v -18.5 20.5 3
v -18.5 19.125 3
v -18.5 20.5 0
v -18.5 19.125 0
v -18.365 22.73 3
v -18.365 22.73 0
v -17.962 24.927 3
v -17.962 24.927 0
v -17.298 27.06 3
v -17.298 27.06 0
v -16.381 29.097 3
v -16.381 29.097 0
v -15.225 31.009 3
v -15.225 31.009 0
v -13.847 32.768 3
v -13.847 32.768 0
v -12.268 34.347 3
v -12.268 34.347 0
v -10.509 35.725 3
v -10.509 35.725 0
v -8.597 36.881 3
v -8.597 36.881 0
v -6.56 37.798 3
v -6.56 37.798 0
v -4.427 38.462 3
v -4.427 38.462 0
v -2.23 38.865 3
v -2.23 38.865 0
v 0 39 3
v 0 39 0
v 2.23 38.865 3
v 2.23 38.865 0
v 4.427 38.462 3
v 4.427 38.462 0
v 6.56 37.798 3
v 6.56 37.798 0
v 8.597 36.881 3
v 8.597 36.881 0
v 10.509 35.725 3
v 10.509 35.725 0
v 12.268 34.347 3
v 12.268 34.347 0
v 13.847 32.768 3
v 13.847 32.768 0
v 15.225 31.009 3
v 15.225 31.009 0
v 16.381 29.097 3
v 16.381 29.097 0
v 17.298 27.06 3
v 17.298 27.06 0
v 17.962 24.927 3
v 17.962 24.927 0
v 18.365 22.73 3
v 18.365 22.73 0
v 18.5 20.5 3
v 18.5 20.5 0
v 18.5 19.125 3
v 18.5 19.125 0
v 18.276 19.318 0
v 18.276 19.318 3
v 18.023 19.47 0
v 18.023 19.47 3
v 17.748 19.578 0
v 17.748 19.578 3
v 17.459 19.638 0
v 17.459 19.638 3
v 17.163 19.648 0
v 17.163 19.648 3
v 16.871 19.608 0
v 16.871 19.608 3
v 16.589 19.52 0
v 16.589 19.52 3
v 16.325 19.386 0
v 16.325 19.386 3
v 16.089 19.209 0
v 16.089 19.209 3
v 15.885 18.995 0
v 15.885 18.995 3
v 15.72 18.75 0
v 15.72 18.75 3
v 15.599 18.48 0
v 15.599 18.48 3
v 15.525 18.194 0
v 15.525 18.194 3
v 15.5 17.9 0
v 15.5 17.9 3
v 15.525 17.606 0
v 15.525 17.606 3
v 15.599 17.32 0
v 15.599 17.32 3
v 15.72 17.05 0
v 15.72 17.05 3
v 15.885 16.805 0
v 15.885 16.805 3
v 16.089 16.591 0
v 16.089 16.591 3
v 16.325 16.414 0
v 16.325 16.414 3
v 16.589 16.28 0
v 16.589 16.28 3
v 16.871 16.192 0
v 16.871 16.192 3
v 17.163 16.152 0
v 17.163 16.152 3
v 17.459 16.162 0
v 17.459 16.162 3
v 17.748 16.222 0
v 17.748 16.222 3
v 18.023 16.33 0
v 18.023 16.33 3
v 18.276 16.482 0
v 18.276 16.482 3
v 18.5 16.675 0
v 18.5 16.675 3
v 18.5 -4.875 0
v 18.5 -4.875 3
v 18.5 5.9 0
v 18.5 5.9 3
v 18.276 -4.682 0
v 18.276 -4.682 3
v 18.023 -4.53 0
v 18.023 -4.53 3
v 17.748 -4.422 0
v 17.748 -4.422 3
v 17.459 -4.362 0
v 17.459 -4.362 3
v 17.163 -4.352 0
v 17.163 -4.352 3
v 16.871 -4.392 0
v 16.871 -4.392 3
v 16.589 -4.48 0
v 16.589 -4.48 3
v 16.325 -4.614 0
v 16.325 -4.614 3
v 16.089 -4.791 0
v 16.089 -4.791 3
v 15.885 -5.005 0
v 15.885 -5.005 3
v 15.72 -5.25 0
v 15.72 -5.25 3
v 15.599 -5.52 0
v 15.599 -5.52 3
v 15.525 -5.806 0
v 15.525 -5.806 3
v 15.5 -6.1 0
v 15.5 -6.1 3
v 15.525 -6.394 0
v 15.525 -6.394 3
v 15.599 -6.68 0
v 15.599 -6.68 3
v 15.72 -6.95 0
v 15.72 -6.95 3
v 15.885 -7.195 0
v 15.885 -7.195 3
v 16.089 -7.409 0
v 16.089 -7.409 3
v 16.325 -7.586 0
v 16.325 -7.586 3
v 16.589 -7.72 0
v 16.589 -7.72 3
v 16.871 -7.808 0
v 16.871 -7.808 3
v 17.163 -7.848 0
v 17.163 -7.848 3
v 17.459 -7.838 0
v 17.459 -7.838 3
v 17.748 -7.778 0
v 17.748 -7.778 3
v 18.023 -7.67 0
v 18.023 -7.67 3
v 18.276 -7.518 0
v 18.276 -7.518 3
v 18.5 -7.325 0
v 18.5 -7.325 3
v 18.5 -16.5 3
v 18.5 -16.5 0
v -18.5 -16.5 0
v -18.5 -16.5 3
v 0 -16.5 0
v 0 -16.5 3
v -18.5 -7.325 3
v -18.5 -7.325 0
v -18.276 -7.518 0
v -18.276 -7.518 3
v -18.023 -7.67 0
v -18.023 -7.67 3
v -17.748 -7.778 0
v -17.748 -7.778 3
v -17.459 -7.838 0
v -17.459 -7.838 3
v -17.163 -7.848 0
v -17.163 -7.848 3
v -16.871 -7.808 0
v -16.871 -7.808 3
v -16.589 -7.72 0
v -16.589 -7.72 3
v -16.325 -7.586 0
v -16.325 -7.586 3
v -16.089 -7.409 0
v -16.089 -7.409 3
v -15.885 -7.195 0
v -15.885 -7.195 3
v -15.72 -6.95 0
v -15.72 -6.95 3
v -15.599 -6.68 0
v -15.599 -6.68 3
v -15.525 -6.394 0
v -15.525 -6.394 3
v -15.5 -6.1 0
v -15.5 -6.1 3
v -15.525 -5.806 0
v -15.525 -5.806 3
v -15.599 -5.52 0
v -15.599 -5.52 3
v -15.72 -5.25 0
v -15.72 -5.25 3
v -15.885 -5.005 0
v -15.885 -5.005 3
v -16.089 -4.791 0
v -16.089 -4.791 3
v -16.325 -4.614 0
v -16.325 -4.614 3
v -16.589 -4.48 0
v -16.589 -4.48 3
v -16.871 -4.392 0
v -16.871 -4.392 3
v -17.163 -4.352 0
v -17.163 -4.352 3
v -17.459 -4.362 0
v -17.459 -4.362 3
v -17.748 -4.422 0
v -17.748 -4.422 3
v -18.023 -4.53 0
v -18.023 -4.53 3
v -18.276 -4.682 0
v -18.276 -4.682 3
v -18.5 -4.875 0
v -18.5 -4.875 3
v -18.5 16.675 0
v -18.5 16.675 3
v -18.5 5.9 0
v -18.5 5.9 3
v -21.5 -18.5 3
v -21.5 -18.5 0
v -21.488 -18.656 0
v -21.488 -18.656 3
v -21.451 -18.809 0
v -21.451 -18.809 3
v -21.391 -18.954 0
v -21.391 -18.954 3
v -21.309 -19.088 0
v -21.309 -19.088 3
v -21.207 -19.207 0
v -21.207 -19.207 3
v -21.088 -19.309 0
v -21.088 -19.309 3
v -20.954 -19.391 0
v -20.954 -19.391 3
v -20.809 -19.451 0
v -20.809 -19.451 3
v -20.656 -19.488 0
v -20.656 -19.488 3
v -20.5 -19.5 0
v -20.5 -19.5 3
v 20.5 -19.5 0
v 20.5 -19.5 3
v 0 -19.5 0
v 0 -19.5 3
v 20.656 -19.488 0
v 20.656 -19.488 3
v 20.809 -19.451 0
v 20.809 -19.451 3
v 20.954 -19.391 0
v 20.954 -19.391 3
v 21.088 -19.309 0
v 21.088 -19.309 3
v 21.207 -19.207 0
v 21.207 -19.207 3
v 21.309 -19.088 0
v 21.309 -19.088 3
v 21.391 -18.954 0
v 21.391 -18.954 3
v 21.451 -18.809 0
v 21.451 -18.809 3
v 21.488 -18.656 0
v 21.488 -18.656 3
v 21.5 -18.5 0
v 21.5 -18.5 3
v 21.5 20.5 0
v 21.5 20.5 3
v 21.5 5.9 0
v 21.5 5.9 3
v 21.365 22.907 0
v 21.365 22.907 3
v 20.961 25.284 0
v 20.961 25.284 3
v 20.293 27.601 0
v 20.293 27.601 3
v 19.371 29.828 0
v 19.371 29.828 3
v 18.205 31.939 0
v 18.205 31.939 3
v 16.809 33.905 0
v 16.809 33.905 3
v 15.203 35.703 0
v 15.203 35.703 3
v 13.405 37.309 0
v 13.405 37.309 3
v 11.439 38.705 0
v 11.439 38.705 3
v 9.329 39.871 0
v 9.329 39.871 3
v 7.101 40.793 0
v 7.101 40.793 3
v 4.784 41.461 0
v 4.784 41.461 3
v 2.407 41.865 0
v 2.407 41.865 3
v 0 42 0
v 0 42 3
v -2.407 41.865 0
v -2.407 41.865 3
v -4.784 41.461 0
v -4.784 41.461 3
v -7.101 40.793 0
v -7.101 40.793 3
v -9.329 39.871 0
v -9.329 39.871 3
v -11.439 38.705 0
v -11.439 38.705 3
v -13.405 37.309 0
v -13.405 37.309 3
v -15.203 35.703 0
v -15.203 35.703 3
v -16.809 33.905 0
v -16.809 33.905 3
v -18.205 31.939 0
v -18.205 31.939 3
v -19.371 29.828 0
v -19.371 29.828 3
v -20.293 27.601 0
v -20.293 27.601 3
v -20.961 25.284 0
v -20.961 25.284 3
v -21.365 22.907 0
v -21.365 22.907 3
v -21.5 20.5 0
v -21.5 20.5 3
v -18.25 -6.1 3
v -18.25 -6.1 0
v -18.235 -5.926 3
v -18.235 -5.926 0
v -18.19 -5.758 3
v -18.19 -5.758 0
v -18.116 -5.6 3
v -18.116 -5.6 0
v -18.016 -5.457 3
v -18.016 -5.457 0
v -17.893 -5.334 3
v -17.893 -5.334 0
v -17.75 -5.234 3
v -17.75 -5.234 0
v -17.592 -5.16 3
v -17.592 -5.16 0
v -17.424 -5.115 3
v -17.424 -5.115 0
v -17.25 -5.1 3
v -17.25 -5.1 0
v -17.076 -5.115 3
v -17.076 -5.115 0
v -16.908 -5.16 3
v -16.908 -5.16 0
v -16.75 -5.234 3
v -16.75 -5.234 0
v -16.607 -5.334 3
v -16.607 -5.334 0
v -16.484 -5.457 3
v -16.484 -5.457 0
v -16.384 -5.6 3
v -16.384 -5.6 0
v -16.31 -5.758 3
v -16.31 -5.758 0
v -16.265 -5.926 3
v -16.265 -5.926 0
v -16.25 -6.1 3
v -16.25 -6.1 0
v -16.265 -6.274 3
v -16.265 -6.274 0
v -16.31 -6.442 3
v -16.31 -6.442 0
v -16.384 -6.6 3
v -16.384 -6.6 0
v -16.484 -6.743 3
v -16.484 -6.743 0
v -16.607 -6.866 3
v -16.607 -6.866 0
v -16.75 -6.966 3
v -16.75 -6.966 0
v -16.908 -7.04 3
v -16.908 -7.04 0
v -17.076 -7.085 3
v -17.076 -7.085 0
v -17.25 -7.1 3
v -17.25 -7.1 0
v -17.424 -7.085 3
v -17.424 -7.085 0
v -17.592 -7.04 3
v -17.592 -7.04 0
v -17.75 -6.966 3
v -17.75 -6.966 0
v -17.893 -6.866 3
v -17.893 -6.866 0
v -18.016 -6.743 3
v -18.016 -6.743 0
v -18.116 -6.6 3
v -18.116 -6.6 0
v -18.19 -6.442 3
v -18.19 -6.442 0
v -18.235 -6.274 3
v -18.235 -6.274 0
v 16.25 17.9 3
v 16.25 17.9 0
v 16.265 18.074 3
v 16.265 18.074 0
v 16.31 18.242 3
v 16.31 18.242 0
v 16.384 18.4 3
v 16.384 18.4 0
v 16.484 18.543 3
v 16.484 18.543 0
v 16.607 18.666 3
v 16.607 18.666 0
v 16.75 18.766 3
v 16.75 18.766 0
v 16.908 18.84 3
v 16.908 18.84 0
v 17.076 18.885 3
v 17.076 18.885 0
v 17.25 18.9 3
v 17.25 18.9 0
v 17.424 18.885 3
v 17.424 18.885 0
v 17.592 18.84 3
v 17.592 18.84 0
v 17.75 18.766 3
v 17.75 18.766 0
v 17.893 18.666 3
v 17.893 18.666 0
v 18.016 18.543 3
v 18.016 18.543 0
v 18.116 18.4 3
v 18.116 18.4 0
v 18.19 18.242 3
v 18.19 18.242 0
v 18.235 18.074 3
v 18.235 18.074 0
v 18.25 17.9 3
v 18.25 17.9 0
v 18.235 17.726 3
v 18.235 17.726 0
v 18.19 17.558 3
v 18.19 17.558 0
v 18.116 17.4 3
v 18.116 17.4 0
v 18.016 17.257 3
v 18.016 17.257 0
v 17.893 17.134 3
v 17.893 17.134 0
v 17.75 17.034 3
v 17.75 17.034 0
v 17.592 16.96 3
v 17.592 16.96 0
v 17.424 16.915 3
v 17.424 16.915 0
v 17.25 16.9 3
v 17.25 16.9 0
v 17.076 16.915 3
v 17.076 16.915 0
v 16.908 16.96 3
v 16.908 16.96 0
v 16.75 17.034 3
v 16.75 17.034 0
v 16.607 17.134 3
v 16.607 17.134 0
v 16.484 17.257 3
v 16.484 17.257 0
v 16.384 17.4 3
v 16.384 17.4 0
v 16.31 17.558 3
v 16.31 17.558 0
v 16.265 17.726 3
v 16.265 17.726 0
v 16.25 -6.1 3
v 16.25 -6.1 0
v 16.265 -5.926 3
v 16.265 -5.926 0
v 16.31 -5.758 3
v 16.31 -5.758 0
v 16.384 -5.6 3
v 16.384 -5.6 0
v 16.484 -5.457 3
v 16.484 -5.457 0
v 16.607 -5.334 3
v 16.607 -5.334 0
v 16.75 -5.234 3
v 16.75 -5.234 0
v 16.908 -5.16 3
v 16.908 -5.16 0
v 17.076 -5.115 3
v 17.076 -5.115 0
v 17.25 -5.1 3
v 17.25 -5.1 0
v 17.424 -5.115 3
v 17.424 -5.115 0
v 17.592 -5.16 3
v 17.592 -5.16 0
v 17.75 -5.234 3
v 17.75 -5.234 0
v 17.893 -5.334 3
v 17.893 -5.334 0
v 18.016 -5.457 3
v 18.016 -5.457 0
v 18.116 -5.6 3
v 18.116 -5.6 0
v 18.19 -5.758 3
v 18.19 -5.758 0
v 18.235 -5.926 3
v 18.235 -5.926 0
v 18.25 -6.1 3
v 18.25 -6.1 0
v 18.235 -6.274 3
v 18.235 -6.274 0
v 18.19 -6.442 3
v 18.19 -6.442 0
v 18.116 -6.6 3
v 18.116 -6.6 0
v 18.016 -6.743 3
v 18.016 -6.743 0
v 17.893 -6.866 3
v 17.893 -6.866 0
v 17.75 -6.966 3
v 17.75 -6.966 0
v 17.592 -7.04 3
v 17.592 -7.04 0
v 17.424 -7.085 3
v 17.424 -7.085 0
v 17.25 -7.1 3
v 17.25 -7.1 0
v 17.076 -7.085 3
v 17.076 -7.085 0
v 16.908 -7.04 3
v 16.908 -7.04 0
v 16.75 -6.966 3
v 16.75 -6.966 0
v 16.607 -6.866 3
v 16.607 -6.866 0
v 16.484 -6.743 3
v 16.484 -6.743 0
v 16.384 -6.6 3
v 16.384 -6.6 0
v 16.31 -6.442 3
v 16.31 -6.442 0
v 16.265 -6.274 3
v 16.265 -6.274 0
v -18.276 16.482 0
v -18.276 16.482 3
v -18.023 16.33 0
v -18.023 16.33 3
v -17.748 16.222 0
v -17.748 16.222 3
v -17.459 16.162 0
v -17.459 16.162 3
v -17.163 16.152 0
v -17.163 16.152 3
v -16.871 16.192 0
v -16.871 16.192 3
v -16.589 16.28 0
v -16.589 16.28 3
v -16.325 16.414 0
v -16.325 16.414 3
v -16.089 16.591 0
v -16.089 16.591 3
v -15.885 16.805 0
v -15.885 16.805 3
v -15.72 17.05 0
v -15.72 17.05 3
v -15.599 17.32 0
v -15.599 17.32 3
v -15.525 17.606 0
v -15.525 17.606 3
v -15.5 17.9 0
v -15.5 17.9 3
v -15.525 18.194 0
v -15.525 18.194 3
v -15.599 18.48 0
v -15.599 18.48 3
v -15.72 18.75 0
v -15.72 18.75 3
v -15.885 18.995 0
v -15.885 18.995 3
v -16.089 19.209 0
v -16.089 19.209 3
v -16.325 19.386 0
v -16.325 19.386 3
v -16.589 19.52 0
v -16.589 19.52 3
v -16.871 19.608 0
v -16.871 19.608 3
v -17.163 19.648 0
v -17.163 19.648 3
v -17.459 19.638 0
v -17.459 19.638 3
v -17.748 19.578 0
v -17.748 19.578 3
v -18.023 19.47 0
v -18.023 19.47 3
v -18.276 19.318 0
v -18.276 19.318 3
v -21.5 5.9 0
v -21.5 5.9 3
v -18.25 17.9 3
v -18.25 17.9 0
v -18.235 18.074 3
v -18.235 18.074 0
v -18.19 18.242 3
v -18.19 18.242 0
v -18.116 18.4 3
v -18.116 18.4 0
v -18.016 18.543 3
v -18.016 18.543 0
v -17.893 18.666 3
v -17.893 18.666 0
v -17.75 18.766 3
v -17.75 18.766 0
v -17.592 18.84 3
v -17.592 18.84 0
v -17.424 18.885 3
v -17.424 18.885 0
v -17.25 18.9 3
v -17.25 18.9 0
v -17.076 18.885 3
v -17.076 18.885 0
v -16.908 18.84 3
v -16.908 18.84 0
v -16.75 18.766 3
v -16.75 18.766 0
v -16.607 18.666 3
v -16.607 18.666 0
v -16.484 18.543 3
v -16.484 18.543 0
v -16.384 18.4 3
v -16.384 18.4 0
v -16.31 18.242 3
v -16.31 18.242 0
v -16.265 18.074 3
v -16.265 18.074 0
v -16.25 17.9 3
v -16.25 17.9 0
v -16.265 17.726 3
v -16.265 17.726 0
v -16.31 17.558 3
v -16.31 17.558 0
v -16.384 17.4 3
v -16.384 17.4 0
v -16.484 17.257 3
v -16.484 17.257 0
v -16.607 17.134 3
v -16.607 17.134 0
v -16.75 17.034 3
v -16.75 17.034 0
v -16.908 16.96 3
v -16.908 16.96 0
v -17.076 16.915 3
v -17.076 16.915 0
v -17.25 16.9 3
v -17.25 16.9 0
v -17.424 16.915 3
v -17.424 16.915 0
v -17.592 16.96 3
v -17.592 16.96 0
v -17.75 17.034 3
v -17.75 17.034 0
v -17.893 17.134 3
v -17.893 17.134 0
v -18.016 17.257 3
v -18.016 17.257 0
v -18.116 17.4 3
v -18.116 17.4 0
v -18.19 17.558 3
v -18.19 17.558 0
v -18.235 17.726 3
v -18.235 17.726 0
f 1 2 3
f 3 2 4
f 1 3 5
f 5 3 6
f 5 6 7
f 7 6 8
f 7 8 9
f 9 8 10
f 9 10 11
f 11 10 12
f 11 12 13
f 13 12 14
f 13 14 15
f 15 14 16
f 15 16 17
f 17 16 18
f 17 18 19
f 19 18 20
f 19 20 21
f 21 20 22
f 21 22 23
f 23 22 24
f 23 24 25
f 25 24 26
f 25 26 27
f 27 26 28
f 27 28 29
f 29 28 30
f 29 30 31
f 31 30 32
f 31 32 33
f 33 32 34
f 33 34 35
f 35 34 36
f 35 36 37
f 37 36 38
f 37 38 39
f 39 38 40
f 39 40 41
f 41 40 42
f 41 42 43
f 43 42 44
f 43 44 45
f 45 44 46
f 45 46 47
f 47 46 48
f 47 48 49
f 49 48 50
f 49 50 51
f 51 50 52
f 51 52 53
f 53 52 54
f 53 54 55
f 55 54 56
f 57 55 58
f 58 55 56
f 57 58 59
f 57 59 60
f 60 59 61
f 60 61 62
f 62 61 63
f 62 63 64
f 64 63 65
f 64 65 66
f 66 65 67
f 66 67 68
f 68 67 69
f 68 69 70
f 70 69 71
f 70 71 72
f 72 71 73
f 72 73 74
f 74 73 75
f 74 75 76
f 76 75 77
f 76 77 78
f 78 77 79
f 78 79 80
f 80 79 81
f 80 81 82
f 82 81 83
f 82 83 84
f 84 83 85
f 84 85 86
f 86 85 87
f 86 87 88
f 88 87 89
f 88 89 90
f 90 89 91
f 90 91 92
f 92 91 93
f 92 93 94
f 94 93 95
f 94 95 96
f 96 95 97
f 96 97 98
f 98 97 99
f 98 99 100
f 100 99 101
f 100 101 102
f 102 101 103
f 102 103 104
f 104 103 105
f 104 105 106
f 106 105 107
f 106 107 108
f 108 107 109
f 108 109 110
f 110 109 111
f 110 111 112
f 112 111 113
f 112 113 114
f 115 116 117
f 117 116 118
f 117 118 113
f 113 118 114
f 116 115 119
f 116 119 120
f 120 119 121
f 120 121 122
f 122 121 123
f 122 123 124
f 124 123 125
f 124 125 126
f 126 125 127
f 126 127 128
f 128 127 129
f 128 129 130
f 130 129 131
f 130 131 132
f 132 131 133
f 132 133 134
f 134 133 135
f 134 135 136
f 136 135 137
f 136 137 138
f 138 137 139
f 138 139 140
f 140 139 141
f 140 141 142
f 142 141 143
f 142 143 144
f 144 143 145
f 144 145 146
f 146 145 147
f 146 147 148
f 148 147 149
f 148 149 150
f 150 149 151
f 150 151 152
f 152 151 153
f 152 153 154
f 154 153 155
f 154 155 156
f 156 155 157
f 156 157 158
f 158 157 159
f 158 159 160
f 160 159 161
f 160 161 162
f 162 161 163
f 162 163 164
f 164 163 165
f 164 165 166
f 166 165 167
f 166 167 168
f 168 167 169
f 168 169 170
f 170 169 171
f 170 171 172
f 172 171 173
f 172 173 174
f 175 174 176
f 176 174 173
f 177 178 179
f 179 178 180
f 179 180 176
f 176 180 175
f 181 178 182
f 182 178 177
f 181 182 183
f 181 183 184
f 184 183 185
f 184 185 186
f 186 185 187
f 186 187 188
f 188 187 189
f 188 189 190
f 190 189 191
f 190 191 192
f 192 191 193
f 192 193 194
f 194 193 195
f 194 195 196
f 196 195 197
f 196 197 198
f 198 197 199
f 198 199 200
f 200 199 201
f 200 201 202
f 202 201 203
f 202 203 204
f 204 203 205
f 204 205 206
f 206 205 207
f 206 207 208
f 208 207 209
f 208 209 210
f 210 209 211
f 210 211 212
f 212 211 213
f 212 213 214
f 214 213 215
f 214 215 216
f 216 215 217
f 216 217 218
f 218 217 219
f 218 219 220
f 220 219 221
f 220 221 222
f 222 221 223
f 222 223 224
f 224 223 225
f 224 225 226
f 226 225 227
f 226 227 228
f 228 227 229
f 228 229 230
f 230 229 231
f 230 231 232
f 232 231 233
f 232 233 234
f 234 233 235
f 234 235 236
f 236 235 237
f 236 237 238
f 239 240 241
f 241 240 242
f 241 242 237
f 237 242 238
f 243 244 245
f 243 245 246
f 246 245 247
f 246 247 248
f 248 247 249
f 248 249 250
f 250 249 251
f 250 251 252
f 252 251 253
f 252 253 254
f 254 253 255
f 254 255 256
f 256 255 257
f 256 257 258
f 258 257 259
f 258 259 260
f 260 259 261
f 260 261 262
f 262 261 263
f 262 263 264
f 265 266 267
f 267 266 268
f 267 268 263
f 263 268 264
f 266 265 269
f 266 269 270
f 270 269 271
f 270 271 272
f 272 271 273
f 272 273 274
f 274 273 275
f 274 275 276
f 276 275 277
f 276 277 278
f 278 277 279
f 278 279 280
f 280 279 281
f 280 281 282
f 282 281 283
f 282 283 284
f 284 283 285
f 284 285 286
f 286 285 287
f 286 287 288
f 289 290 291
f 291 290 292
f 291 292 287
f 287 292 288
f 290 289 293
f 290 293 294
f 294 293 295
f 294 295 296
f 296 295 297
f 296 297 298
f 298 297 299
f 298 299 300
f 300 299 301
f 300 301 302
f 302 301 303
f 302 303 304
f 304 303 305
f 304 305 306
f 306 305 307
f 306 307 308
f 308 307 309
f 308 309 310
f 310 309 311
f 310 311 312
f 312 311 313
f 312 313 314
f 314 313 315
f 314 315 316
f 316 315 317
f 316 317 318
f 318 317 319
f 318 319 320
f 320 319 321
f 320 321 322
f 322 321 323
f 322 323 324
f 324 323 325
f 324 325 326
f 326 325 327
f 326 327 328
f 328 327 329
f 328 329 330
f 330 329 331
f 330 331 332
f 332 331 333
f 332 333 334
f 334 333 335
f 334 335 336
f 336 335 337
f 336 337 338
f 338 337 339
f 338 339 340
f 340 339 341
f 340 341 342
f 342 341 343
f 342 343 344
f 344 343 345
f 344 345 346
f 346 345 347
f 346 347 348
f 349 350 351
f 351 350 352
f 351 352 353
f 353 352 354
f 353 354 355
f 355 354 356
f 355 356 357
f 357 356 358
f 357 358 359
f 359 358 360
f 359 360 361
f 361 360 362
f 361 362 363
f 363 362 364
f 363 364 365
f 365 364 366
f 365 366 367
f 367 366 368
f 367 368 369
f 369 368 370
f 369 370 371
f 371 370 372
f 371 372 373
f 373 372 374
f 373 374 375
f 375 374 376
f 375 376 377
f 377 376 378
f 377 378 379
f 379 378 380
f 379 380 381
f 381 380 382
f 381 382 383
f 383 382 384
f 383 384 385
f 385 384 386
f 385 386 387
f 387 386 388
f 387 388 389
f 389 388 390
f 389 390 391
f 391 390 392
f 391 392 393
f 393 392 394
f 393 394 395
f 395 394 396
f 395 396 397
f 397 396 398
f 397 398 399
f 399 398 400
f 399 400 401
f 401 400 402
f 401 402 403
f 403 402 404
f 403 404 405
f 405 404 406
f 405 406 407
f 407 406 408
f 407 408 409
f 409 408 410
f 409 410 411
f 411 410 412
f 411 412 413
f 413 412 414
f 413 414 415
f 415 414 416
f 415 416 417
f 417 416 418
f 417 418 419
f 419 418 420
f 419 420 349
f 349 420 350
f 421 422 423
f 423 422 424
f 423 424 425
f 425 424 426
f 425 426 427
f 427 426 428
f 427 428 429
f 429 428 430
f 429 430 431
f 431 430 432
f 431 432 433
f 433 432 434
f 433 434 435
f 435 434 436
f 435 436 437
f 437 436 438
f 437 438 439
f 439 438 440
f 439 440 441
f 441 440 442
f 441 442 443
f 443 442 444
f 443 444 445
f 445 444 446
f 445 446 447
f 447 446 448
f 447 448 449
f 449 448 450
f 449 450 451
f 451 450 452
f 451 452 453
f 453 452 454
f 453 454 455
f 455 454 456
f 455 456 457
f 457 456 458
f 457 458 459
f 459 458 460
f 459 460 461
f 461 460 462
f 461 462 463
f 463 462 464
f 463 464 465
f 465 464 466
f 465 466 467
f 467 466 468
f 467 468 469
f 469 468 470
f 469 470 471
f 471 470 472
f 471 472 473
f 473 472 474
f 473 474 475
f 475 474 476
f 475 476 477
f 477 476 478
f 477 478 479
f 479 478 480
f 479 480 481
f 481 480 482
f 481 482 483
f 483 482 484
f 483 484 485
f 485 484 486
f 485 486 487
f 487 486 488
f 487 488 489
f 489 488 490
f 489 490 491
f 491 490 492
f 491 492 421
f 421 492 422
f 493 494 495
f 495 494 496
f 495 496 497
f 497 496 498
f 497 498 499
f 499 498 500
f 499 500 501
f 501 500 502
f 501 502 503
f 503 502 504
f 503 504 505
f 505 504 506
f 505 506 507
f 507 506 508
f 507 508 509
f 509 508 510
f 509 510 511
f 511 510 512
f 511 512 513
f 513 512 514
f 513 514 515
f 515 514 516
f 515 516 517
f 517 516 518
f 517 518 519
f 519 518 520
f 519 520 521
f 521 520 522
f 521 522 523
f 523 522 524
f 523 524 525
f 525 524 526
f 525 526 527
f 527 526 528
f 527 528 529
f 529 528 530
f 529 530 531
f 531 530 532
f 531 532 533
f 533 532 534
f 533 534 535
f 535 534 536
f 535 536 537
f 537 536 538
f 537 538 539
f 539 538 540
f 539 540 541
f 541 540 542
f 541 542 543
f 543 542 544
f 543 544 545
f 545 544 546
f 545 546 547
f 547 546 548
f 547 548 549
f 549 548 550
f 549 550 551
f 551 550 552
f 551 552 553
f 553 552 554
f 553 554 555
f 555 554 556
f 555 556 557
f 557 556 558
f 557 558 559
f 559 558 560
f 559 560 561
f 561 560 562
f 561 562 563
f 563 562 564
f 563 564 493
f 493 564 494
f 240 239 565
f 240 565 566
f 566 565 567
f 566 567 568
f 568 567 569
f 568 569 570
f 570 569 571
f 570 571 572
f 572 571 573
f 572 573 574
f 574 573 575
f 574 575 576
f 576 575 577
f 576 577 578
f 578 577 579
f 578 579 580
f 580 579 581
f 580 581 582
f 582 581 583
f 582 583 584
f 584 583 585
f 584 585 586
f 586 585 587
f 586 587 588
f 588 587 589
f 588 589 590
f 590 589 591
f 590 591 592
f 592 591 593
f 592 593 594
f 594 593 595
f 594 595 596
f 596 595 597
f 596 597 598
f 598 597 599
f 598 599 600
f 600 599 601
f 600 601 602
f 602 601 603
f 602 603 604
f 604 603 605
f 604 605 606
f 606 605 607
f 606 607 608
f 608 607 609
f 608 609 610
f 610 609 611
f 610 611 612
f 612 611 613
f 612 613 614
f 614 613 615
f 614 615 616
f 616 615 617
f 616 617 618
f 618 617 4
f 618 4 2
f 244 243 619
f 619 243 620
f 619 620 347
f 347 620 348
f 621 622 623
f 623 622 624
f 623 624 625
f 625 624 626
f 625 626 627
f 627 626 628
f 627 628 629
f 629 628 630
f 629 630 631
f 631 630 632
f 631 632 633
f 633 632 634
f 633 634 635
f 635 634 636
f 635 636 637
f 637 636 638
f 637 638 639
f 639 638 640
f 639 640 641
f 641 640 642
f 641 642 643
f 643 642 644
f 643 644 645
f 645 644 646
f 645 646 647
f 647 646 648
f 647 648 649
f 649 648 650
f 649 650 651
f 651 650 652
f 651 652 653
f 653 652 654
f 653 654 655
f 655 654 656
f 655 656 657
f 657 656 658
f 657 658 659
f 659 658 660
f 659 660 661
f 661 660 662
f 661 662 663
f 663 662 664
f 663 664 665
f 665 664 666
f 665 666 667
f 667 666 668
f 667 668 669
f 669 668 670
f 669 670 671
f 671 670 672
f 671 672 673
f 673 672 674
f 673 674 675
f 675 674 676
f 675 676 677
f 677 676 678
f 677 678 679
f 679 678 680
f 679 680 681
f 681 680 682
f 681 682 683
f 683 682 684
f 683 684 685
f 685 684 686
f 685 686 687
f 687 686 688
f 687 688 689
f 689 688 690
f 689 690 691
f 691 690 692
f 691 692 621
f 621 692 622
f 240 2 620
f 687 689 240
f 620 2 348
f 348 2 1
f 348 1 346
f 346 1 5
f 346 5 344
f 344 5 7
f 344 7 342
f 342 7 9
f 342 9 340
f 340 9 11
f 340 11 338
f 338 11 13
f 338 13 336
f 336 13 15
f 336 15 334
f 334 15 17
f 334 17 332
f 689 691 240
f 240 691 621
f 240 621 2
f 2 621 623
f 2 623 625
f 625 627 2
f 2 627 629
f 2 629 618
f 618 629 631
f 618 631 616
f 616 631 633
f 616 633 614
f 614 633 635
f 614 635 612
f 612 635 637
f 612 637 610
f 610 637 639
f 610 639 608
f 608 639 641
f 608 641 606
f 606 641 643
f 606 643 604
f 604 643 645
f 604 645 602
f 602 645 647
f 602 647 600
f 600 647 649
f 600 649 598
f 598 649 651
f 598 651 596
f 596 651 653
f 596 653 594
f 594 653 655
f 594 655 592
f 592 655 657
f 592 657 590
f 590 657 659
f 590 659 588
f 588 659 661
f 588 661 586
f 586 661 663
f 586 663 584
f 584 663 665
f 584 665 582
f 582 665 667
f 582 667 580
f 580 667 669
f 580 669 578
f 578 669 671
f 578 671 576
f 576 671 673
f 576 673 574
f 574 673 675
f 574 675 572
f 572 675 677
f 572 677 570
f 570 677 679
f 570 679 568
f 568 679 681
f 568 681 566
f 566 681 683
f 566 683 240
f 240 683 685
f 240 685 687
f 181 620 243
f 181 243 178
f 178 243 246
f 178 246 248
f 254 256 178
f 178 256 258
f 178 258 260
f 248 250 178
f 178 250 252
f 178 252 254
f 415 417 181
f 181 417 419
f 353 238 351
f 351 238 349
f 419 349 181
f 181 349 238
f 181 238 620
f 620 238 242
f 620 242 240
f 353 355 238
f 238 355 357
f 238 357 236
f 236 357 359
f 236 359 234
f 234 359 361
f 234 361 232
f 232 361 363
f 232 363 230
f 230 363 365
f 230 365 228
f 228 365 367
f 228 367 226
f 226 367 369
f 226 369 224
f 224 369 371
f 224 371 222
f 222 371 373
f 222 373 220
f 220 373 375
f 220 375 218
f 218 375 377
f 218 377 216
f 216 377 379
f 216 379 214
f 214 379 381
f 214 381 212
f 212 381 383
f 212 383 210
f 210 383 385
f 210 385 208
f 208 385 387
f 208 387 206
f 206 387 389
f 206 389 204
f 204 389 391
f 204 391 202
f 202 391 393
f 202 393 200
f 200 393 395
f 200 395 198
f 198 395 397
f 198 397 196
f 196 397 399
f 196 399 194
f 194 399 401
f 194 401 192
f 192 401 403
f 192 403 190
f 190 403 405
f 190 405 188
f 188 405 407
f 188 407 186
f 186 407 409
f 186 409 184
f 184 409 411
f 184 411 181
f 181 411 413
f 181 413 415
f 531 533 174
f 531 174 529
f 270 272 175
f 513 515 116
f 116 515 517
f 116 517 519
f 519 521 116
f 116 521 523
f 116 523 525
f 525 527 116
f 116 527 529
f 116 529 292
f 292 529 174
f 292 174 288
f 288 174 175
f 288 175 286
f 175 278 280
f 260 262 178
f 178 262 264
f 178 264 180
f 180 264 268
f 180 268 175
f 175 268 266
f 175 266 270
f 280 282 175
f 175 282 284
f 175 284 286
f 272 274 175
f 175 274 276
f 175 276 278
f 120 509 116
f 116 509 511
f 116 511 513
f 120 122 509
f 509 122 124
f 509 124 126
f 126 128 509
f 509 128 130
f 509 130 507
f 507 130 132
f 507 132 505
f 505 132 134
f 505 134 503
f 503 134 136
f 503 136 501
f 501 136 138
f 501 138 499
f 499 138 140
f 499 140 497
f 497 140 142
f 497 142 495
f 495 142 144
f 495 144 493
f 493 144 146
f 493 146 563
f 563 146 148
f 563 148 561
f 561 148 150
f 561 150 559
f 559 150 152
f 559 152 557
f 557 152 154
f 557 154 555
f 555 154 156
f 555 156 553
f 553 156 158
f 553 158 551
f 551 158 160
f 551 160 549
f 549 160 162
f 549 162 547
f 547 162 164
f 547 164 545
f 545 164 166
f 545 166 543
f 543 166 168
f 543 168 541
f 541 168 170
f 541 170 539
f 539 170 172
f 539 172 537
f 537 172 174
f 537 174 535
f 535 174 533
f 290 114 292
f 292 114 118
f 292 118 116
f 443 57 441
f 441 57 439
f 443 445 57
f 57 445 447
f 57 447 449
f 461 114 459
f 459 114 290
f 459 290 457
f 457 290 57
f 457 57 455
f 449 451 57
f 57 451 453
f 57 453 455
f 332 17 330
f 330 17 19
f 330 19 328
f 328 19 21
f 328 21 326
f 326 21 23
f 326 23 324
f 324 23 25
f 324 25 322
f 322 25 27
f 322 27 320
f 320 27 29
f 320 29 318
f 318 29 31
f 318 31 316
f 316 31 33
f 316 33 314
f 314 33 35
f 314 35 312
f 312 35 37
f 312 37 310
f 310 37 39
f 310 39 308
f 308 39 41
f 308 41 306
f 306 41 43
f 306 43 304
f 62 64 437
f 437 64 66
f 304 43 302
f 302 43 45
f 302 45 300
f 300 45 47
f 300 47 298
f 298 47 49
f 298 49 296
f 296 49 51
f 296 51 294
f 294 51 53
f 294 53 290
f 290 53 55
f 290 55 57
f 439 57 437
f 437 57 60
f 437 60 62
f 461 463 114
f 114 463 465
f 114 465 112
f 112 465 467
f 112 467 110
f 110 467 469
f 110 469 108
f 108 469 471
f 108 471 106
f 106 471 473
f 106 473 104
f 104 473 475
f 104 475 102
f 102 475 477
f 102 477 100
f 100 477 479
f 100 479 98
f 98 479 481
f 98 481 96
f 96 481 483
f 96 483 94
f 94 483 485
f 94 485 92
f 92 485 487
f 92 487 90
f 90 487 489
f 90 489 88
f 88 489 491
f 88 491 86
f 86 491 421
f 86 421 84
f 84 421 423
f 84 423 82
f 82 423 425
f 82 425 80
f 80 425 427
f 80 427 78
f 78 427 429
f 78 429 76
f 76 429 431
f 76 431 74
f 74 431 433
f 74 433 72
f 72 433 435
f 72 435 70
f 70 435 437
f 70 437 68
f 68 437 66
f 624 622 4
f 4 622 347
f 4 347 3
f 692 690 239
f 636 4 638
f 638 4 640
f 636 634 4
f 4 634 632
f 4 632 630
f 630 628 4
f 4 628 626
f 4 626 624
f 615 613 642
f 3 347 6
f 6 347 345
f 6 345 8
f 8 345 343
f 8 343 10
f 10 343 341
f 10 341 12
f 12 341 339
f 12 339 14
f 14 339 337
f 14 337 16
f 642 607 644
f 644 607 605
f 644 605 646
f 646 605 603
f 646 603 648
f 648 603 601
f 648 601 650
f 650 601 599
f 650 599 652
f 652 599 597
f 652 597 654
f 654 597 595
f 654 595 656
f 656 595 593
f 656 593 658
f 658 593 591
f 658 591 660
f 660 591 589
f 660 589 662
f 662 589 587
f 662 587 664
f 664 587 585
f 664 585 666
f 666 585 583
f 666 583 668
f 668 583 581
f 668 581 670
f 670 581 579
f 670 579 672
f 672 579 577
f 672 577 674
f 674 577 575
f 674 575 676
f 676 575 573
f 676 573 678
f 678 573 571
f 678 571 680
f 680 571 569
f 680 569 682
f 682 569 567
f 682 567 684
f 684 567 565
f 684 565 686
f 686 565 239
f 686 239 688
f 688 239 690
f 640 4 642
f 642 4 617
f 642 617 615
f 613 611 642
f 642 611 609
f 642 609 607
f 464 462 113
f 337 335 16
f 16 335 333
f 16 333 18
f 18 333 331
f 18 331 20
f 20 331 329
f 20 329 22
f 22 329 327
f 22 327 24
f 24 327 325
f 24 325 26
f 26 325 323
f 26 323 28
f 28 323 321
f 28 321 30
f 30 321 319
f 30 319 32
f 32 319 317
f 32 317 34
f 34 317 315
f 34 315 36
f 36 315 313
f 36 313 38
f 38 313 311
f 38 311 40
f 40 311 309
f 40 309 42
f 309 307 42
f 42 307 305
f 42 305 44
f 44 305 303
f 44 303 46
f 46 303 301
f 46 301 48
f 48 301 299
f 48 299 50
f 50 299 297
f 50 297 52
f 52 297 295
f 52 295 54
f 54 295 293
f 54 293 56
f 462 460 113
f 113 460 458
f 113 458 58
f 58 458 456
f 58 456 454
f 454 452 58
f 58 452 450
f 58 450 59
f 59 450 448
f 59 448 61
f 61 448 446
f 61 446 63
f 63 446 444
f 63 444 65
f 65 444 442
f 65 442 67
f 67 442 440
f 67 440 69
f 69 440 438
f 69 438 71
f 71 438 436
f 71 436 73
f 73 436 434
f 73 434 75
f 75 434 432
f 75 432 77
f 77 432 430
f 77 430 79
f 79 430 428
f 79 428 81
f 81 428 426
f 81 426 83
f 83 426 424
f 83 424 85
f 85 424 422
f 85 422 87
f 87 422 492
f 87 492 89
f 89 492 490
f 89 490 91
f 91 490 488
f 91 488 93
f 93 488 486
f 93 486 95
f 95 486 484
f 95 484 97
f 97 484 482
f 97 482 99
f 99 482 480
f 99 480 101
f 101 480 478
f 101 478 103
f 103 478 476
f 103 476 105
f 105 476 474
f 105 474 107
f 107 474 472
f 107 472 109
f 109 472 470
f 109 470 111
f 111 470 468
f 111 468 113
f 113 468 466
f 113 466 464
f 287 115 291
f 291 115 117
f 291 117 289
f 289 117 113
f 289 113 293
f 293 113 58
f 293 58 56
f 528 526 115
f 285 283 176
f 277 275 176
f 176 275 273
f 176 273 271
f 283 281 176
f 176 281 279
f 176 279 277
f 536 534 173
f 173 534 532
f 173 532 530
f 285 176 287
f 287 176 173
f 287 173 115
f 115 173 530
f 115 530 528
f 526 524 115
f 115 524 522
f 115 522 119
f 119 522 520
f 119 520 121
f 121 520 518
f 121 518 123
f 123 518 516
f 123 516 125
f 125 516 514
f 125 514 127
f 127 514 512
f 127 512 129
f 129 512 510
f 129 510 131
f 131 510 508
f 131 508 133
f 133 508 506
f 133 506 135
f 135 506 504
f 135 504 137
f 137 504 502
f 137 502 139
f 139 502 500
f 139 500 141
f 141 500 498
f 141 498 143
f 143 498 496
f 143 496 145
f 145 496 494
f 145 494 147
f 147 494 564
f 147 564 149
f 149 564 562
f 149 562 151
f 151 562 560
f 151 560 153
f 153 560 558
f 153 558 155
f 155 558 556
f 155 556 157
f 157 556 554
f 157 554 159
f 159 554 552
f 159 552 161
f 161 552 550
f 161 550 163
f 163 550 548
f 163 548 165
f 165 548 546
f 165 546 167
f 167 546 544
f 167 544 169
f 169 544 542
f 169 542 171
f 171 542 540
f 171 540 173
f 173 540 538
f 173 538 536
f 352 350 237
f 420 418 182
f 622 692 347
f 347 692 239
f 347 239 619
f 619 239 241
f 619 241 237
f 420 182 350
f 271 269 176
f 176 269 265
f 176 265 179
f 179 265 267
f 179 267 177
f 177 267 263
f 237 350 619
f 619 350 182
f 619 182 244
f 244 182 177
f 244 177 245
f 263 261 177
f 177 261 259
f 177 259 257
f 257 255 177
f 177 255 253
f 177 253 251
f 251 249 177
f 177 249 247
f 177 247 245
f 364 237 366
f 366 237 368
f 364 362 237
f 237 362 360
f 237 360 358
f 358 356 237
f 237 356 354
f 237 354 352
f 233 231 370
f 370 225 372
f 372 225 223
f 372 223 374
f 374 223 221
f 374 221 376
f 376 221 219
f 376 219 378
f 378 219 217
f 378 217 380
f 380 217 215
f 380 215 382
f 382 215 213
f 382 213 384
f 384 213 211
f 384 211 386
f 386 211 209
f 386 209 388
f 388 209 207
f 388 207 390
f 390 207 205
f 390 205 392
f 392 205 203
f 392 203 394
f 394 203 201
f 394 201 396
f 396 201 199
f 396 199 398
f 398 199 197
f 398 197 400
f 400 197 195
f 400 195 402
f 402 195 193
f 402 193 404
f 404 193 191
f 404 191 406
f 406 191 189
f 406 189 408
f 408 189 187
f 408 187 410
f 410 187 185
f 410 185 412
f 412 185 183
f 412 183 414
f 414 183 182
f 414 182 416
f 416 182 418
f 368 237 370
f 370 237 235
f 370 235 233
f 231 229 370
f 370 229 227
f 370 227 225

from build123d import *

# Parameters (mm, degrees)
SKETCH1_R           = 1
BOSS_EXTRUDE1_DEPTH = 3


with BuildPart() as part:
    # Sketch1 → Boss-Extrude1 (new body)
    with BuildSketch(Plane.XY):
        with BuildLine():
            ThreePointArc((21.5, 20.5), (0, 42), (-21.5, 20.5))
            Line((-21.5, 20.5), (-21.5, -18.5))
            ThreePointArc((-21.5, -18.5), (-21.207106781, -19.207106781), (-20.5, -19.5))
            Line((-20.5, -19.5), (20.5, -19.5))
            ThreePointArc((20.5, -19.5), (21.207106781, -19.207106781), (21.5, -18.5))
            Line((21.5, -18.5), (21.5, 20.5))
        make_face()
        with Locations((-17.25, -6.1)):
            Circle(SKETCH1_R, mode=Mode.SUBTRACT)
        with Locations((-17.25, 17.9)):
            Circle(SKETCH1_R, mode=Mode.SUBTRACT)
        with BuildLine():
            ThreePointArc((-18.5, -7.324744871), (-15.636648903, -6.77793675), (-17.25, -4.35))
            ThreePointArc((-17.25, -4.35), (-17.92793675, -4.486648903), (-18.5, -4.875255129))
            Line((-18.5, -4.875255129), (-18.5, 16.675255129))
            ThreePointArc((-18.5, 16.675255129), (-17.92793675, 16.286648903), (-17.25, 16.15))
            ThreePointArc((-17.25, 16.15), (-15.636648903, 18.57793675), (-18.5, 19.124744871))
            Line((-18.5, 19.124744871), (-18.5, 20.5))
            ThreePointArc((-18.5, 20.5), (0, 39), (18.5, 20.5))
            Line((18.5, 20.5), (18.5, 19.124744871))
            ThreePointArc((18.5, 19.124744871), (15.636648903, 18.57793675), (17.25, 16.15))
            ThreePointArc((17.25, 16.15), (17.92793675, 16.286648903), (18.5, 16.675255129))
            Line((18.5, 16.675255129), (18.5, -4.875255129))
            ThreePointArc((18.5, -4.875255129), (17.92793675, -4.486648903), (17.25, -4.35))
            ThreePointArc((17.25, -4.35), (15.636648903, -6.77793675), (18.5, -7.324744871))
            Line((18.5, -7.324744871), (18.5, -16.5))
            Line((18.5, -16.5), (-18.5, -16.5))
            Line((-18.5, -16.5), (-18.5, -7.324744871))
        make_face(mode=Mode.SUBTRACT)
        with Locations((17.25, 17.9)):
            Circle(SKETCH1_R, mode=Mode.SUBTRACT)
        with Locations((17.25, -6.1)):
            Circle(SKETCH1_R, mode=Mode.SUBTRACT)
    extrude(amount=BOSS_EXTRUDE1_DEPTH)


solid = part.part
